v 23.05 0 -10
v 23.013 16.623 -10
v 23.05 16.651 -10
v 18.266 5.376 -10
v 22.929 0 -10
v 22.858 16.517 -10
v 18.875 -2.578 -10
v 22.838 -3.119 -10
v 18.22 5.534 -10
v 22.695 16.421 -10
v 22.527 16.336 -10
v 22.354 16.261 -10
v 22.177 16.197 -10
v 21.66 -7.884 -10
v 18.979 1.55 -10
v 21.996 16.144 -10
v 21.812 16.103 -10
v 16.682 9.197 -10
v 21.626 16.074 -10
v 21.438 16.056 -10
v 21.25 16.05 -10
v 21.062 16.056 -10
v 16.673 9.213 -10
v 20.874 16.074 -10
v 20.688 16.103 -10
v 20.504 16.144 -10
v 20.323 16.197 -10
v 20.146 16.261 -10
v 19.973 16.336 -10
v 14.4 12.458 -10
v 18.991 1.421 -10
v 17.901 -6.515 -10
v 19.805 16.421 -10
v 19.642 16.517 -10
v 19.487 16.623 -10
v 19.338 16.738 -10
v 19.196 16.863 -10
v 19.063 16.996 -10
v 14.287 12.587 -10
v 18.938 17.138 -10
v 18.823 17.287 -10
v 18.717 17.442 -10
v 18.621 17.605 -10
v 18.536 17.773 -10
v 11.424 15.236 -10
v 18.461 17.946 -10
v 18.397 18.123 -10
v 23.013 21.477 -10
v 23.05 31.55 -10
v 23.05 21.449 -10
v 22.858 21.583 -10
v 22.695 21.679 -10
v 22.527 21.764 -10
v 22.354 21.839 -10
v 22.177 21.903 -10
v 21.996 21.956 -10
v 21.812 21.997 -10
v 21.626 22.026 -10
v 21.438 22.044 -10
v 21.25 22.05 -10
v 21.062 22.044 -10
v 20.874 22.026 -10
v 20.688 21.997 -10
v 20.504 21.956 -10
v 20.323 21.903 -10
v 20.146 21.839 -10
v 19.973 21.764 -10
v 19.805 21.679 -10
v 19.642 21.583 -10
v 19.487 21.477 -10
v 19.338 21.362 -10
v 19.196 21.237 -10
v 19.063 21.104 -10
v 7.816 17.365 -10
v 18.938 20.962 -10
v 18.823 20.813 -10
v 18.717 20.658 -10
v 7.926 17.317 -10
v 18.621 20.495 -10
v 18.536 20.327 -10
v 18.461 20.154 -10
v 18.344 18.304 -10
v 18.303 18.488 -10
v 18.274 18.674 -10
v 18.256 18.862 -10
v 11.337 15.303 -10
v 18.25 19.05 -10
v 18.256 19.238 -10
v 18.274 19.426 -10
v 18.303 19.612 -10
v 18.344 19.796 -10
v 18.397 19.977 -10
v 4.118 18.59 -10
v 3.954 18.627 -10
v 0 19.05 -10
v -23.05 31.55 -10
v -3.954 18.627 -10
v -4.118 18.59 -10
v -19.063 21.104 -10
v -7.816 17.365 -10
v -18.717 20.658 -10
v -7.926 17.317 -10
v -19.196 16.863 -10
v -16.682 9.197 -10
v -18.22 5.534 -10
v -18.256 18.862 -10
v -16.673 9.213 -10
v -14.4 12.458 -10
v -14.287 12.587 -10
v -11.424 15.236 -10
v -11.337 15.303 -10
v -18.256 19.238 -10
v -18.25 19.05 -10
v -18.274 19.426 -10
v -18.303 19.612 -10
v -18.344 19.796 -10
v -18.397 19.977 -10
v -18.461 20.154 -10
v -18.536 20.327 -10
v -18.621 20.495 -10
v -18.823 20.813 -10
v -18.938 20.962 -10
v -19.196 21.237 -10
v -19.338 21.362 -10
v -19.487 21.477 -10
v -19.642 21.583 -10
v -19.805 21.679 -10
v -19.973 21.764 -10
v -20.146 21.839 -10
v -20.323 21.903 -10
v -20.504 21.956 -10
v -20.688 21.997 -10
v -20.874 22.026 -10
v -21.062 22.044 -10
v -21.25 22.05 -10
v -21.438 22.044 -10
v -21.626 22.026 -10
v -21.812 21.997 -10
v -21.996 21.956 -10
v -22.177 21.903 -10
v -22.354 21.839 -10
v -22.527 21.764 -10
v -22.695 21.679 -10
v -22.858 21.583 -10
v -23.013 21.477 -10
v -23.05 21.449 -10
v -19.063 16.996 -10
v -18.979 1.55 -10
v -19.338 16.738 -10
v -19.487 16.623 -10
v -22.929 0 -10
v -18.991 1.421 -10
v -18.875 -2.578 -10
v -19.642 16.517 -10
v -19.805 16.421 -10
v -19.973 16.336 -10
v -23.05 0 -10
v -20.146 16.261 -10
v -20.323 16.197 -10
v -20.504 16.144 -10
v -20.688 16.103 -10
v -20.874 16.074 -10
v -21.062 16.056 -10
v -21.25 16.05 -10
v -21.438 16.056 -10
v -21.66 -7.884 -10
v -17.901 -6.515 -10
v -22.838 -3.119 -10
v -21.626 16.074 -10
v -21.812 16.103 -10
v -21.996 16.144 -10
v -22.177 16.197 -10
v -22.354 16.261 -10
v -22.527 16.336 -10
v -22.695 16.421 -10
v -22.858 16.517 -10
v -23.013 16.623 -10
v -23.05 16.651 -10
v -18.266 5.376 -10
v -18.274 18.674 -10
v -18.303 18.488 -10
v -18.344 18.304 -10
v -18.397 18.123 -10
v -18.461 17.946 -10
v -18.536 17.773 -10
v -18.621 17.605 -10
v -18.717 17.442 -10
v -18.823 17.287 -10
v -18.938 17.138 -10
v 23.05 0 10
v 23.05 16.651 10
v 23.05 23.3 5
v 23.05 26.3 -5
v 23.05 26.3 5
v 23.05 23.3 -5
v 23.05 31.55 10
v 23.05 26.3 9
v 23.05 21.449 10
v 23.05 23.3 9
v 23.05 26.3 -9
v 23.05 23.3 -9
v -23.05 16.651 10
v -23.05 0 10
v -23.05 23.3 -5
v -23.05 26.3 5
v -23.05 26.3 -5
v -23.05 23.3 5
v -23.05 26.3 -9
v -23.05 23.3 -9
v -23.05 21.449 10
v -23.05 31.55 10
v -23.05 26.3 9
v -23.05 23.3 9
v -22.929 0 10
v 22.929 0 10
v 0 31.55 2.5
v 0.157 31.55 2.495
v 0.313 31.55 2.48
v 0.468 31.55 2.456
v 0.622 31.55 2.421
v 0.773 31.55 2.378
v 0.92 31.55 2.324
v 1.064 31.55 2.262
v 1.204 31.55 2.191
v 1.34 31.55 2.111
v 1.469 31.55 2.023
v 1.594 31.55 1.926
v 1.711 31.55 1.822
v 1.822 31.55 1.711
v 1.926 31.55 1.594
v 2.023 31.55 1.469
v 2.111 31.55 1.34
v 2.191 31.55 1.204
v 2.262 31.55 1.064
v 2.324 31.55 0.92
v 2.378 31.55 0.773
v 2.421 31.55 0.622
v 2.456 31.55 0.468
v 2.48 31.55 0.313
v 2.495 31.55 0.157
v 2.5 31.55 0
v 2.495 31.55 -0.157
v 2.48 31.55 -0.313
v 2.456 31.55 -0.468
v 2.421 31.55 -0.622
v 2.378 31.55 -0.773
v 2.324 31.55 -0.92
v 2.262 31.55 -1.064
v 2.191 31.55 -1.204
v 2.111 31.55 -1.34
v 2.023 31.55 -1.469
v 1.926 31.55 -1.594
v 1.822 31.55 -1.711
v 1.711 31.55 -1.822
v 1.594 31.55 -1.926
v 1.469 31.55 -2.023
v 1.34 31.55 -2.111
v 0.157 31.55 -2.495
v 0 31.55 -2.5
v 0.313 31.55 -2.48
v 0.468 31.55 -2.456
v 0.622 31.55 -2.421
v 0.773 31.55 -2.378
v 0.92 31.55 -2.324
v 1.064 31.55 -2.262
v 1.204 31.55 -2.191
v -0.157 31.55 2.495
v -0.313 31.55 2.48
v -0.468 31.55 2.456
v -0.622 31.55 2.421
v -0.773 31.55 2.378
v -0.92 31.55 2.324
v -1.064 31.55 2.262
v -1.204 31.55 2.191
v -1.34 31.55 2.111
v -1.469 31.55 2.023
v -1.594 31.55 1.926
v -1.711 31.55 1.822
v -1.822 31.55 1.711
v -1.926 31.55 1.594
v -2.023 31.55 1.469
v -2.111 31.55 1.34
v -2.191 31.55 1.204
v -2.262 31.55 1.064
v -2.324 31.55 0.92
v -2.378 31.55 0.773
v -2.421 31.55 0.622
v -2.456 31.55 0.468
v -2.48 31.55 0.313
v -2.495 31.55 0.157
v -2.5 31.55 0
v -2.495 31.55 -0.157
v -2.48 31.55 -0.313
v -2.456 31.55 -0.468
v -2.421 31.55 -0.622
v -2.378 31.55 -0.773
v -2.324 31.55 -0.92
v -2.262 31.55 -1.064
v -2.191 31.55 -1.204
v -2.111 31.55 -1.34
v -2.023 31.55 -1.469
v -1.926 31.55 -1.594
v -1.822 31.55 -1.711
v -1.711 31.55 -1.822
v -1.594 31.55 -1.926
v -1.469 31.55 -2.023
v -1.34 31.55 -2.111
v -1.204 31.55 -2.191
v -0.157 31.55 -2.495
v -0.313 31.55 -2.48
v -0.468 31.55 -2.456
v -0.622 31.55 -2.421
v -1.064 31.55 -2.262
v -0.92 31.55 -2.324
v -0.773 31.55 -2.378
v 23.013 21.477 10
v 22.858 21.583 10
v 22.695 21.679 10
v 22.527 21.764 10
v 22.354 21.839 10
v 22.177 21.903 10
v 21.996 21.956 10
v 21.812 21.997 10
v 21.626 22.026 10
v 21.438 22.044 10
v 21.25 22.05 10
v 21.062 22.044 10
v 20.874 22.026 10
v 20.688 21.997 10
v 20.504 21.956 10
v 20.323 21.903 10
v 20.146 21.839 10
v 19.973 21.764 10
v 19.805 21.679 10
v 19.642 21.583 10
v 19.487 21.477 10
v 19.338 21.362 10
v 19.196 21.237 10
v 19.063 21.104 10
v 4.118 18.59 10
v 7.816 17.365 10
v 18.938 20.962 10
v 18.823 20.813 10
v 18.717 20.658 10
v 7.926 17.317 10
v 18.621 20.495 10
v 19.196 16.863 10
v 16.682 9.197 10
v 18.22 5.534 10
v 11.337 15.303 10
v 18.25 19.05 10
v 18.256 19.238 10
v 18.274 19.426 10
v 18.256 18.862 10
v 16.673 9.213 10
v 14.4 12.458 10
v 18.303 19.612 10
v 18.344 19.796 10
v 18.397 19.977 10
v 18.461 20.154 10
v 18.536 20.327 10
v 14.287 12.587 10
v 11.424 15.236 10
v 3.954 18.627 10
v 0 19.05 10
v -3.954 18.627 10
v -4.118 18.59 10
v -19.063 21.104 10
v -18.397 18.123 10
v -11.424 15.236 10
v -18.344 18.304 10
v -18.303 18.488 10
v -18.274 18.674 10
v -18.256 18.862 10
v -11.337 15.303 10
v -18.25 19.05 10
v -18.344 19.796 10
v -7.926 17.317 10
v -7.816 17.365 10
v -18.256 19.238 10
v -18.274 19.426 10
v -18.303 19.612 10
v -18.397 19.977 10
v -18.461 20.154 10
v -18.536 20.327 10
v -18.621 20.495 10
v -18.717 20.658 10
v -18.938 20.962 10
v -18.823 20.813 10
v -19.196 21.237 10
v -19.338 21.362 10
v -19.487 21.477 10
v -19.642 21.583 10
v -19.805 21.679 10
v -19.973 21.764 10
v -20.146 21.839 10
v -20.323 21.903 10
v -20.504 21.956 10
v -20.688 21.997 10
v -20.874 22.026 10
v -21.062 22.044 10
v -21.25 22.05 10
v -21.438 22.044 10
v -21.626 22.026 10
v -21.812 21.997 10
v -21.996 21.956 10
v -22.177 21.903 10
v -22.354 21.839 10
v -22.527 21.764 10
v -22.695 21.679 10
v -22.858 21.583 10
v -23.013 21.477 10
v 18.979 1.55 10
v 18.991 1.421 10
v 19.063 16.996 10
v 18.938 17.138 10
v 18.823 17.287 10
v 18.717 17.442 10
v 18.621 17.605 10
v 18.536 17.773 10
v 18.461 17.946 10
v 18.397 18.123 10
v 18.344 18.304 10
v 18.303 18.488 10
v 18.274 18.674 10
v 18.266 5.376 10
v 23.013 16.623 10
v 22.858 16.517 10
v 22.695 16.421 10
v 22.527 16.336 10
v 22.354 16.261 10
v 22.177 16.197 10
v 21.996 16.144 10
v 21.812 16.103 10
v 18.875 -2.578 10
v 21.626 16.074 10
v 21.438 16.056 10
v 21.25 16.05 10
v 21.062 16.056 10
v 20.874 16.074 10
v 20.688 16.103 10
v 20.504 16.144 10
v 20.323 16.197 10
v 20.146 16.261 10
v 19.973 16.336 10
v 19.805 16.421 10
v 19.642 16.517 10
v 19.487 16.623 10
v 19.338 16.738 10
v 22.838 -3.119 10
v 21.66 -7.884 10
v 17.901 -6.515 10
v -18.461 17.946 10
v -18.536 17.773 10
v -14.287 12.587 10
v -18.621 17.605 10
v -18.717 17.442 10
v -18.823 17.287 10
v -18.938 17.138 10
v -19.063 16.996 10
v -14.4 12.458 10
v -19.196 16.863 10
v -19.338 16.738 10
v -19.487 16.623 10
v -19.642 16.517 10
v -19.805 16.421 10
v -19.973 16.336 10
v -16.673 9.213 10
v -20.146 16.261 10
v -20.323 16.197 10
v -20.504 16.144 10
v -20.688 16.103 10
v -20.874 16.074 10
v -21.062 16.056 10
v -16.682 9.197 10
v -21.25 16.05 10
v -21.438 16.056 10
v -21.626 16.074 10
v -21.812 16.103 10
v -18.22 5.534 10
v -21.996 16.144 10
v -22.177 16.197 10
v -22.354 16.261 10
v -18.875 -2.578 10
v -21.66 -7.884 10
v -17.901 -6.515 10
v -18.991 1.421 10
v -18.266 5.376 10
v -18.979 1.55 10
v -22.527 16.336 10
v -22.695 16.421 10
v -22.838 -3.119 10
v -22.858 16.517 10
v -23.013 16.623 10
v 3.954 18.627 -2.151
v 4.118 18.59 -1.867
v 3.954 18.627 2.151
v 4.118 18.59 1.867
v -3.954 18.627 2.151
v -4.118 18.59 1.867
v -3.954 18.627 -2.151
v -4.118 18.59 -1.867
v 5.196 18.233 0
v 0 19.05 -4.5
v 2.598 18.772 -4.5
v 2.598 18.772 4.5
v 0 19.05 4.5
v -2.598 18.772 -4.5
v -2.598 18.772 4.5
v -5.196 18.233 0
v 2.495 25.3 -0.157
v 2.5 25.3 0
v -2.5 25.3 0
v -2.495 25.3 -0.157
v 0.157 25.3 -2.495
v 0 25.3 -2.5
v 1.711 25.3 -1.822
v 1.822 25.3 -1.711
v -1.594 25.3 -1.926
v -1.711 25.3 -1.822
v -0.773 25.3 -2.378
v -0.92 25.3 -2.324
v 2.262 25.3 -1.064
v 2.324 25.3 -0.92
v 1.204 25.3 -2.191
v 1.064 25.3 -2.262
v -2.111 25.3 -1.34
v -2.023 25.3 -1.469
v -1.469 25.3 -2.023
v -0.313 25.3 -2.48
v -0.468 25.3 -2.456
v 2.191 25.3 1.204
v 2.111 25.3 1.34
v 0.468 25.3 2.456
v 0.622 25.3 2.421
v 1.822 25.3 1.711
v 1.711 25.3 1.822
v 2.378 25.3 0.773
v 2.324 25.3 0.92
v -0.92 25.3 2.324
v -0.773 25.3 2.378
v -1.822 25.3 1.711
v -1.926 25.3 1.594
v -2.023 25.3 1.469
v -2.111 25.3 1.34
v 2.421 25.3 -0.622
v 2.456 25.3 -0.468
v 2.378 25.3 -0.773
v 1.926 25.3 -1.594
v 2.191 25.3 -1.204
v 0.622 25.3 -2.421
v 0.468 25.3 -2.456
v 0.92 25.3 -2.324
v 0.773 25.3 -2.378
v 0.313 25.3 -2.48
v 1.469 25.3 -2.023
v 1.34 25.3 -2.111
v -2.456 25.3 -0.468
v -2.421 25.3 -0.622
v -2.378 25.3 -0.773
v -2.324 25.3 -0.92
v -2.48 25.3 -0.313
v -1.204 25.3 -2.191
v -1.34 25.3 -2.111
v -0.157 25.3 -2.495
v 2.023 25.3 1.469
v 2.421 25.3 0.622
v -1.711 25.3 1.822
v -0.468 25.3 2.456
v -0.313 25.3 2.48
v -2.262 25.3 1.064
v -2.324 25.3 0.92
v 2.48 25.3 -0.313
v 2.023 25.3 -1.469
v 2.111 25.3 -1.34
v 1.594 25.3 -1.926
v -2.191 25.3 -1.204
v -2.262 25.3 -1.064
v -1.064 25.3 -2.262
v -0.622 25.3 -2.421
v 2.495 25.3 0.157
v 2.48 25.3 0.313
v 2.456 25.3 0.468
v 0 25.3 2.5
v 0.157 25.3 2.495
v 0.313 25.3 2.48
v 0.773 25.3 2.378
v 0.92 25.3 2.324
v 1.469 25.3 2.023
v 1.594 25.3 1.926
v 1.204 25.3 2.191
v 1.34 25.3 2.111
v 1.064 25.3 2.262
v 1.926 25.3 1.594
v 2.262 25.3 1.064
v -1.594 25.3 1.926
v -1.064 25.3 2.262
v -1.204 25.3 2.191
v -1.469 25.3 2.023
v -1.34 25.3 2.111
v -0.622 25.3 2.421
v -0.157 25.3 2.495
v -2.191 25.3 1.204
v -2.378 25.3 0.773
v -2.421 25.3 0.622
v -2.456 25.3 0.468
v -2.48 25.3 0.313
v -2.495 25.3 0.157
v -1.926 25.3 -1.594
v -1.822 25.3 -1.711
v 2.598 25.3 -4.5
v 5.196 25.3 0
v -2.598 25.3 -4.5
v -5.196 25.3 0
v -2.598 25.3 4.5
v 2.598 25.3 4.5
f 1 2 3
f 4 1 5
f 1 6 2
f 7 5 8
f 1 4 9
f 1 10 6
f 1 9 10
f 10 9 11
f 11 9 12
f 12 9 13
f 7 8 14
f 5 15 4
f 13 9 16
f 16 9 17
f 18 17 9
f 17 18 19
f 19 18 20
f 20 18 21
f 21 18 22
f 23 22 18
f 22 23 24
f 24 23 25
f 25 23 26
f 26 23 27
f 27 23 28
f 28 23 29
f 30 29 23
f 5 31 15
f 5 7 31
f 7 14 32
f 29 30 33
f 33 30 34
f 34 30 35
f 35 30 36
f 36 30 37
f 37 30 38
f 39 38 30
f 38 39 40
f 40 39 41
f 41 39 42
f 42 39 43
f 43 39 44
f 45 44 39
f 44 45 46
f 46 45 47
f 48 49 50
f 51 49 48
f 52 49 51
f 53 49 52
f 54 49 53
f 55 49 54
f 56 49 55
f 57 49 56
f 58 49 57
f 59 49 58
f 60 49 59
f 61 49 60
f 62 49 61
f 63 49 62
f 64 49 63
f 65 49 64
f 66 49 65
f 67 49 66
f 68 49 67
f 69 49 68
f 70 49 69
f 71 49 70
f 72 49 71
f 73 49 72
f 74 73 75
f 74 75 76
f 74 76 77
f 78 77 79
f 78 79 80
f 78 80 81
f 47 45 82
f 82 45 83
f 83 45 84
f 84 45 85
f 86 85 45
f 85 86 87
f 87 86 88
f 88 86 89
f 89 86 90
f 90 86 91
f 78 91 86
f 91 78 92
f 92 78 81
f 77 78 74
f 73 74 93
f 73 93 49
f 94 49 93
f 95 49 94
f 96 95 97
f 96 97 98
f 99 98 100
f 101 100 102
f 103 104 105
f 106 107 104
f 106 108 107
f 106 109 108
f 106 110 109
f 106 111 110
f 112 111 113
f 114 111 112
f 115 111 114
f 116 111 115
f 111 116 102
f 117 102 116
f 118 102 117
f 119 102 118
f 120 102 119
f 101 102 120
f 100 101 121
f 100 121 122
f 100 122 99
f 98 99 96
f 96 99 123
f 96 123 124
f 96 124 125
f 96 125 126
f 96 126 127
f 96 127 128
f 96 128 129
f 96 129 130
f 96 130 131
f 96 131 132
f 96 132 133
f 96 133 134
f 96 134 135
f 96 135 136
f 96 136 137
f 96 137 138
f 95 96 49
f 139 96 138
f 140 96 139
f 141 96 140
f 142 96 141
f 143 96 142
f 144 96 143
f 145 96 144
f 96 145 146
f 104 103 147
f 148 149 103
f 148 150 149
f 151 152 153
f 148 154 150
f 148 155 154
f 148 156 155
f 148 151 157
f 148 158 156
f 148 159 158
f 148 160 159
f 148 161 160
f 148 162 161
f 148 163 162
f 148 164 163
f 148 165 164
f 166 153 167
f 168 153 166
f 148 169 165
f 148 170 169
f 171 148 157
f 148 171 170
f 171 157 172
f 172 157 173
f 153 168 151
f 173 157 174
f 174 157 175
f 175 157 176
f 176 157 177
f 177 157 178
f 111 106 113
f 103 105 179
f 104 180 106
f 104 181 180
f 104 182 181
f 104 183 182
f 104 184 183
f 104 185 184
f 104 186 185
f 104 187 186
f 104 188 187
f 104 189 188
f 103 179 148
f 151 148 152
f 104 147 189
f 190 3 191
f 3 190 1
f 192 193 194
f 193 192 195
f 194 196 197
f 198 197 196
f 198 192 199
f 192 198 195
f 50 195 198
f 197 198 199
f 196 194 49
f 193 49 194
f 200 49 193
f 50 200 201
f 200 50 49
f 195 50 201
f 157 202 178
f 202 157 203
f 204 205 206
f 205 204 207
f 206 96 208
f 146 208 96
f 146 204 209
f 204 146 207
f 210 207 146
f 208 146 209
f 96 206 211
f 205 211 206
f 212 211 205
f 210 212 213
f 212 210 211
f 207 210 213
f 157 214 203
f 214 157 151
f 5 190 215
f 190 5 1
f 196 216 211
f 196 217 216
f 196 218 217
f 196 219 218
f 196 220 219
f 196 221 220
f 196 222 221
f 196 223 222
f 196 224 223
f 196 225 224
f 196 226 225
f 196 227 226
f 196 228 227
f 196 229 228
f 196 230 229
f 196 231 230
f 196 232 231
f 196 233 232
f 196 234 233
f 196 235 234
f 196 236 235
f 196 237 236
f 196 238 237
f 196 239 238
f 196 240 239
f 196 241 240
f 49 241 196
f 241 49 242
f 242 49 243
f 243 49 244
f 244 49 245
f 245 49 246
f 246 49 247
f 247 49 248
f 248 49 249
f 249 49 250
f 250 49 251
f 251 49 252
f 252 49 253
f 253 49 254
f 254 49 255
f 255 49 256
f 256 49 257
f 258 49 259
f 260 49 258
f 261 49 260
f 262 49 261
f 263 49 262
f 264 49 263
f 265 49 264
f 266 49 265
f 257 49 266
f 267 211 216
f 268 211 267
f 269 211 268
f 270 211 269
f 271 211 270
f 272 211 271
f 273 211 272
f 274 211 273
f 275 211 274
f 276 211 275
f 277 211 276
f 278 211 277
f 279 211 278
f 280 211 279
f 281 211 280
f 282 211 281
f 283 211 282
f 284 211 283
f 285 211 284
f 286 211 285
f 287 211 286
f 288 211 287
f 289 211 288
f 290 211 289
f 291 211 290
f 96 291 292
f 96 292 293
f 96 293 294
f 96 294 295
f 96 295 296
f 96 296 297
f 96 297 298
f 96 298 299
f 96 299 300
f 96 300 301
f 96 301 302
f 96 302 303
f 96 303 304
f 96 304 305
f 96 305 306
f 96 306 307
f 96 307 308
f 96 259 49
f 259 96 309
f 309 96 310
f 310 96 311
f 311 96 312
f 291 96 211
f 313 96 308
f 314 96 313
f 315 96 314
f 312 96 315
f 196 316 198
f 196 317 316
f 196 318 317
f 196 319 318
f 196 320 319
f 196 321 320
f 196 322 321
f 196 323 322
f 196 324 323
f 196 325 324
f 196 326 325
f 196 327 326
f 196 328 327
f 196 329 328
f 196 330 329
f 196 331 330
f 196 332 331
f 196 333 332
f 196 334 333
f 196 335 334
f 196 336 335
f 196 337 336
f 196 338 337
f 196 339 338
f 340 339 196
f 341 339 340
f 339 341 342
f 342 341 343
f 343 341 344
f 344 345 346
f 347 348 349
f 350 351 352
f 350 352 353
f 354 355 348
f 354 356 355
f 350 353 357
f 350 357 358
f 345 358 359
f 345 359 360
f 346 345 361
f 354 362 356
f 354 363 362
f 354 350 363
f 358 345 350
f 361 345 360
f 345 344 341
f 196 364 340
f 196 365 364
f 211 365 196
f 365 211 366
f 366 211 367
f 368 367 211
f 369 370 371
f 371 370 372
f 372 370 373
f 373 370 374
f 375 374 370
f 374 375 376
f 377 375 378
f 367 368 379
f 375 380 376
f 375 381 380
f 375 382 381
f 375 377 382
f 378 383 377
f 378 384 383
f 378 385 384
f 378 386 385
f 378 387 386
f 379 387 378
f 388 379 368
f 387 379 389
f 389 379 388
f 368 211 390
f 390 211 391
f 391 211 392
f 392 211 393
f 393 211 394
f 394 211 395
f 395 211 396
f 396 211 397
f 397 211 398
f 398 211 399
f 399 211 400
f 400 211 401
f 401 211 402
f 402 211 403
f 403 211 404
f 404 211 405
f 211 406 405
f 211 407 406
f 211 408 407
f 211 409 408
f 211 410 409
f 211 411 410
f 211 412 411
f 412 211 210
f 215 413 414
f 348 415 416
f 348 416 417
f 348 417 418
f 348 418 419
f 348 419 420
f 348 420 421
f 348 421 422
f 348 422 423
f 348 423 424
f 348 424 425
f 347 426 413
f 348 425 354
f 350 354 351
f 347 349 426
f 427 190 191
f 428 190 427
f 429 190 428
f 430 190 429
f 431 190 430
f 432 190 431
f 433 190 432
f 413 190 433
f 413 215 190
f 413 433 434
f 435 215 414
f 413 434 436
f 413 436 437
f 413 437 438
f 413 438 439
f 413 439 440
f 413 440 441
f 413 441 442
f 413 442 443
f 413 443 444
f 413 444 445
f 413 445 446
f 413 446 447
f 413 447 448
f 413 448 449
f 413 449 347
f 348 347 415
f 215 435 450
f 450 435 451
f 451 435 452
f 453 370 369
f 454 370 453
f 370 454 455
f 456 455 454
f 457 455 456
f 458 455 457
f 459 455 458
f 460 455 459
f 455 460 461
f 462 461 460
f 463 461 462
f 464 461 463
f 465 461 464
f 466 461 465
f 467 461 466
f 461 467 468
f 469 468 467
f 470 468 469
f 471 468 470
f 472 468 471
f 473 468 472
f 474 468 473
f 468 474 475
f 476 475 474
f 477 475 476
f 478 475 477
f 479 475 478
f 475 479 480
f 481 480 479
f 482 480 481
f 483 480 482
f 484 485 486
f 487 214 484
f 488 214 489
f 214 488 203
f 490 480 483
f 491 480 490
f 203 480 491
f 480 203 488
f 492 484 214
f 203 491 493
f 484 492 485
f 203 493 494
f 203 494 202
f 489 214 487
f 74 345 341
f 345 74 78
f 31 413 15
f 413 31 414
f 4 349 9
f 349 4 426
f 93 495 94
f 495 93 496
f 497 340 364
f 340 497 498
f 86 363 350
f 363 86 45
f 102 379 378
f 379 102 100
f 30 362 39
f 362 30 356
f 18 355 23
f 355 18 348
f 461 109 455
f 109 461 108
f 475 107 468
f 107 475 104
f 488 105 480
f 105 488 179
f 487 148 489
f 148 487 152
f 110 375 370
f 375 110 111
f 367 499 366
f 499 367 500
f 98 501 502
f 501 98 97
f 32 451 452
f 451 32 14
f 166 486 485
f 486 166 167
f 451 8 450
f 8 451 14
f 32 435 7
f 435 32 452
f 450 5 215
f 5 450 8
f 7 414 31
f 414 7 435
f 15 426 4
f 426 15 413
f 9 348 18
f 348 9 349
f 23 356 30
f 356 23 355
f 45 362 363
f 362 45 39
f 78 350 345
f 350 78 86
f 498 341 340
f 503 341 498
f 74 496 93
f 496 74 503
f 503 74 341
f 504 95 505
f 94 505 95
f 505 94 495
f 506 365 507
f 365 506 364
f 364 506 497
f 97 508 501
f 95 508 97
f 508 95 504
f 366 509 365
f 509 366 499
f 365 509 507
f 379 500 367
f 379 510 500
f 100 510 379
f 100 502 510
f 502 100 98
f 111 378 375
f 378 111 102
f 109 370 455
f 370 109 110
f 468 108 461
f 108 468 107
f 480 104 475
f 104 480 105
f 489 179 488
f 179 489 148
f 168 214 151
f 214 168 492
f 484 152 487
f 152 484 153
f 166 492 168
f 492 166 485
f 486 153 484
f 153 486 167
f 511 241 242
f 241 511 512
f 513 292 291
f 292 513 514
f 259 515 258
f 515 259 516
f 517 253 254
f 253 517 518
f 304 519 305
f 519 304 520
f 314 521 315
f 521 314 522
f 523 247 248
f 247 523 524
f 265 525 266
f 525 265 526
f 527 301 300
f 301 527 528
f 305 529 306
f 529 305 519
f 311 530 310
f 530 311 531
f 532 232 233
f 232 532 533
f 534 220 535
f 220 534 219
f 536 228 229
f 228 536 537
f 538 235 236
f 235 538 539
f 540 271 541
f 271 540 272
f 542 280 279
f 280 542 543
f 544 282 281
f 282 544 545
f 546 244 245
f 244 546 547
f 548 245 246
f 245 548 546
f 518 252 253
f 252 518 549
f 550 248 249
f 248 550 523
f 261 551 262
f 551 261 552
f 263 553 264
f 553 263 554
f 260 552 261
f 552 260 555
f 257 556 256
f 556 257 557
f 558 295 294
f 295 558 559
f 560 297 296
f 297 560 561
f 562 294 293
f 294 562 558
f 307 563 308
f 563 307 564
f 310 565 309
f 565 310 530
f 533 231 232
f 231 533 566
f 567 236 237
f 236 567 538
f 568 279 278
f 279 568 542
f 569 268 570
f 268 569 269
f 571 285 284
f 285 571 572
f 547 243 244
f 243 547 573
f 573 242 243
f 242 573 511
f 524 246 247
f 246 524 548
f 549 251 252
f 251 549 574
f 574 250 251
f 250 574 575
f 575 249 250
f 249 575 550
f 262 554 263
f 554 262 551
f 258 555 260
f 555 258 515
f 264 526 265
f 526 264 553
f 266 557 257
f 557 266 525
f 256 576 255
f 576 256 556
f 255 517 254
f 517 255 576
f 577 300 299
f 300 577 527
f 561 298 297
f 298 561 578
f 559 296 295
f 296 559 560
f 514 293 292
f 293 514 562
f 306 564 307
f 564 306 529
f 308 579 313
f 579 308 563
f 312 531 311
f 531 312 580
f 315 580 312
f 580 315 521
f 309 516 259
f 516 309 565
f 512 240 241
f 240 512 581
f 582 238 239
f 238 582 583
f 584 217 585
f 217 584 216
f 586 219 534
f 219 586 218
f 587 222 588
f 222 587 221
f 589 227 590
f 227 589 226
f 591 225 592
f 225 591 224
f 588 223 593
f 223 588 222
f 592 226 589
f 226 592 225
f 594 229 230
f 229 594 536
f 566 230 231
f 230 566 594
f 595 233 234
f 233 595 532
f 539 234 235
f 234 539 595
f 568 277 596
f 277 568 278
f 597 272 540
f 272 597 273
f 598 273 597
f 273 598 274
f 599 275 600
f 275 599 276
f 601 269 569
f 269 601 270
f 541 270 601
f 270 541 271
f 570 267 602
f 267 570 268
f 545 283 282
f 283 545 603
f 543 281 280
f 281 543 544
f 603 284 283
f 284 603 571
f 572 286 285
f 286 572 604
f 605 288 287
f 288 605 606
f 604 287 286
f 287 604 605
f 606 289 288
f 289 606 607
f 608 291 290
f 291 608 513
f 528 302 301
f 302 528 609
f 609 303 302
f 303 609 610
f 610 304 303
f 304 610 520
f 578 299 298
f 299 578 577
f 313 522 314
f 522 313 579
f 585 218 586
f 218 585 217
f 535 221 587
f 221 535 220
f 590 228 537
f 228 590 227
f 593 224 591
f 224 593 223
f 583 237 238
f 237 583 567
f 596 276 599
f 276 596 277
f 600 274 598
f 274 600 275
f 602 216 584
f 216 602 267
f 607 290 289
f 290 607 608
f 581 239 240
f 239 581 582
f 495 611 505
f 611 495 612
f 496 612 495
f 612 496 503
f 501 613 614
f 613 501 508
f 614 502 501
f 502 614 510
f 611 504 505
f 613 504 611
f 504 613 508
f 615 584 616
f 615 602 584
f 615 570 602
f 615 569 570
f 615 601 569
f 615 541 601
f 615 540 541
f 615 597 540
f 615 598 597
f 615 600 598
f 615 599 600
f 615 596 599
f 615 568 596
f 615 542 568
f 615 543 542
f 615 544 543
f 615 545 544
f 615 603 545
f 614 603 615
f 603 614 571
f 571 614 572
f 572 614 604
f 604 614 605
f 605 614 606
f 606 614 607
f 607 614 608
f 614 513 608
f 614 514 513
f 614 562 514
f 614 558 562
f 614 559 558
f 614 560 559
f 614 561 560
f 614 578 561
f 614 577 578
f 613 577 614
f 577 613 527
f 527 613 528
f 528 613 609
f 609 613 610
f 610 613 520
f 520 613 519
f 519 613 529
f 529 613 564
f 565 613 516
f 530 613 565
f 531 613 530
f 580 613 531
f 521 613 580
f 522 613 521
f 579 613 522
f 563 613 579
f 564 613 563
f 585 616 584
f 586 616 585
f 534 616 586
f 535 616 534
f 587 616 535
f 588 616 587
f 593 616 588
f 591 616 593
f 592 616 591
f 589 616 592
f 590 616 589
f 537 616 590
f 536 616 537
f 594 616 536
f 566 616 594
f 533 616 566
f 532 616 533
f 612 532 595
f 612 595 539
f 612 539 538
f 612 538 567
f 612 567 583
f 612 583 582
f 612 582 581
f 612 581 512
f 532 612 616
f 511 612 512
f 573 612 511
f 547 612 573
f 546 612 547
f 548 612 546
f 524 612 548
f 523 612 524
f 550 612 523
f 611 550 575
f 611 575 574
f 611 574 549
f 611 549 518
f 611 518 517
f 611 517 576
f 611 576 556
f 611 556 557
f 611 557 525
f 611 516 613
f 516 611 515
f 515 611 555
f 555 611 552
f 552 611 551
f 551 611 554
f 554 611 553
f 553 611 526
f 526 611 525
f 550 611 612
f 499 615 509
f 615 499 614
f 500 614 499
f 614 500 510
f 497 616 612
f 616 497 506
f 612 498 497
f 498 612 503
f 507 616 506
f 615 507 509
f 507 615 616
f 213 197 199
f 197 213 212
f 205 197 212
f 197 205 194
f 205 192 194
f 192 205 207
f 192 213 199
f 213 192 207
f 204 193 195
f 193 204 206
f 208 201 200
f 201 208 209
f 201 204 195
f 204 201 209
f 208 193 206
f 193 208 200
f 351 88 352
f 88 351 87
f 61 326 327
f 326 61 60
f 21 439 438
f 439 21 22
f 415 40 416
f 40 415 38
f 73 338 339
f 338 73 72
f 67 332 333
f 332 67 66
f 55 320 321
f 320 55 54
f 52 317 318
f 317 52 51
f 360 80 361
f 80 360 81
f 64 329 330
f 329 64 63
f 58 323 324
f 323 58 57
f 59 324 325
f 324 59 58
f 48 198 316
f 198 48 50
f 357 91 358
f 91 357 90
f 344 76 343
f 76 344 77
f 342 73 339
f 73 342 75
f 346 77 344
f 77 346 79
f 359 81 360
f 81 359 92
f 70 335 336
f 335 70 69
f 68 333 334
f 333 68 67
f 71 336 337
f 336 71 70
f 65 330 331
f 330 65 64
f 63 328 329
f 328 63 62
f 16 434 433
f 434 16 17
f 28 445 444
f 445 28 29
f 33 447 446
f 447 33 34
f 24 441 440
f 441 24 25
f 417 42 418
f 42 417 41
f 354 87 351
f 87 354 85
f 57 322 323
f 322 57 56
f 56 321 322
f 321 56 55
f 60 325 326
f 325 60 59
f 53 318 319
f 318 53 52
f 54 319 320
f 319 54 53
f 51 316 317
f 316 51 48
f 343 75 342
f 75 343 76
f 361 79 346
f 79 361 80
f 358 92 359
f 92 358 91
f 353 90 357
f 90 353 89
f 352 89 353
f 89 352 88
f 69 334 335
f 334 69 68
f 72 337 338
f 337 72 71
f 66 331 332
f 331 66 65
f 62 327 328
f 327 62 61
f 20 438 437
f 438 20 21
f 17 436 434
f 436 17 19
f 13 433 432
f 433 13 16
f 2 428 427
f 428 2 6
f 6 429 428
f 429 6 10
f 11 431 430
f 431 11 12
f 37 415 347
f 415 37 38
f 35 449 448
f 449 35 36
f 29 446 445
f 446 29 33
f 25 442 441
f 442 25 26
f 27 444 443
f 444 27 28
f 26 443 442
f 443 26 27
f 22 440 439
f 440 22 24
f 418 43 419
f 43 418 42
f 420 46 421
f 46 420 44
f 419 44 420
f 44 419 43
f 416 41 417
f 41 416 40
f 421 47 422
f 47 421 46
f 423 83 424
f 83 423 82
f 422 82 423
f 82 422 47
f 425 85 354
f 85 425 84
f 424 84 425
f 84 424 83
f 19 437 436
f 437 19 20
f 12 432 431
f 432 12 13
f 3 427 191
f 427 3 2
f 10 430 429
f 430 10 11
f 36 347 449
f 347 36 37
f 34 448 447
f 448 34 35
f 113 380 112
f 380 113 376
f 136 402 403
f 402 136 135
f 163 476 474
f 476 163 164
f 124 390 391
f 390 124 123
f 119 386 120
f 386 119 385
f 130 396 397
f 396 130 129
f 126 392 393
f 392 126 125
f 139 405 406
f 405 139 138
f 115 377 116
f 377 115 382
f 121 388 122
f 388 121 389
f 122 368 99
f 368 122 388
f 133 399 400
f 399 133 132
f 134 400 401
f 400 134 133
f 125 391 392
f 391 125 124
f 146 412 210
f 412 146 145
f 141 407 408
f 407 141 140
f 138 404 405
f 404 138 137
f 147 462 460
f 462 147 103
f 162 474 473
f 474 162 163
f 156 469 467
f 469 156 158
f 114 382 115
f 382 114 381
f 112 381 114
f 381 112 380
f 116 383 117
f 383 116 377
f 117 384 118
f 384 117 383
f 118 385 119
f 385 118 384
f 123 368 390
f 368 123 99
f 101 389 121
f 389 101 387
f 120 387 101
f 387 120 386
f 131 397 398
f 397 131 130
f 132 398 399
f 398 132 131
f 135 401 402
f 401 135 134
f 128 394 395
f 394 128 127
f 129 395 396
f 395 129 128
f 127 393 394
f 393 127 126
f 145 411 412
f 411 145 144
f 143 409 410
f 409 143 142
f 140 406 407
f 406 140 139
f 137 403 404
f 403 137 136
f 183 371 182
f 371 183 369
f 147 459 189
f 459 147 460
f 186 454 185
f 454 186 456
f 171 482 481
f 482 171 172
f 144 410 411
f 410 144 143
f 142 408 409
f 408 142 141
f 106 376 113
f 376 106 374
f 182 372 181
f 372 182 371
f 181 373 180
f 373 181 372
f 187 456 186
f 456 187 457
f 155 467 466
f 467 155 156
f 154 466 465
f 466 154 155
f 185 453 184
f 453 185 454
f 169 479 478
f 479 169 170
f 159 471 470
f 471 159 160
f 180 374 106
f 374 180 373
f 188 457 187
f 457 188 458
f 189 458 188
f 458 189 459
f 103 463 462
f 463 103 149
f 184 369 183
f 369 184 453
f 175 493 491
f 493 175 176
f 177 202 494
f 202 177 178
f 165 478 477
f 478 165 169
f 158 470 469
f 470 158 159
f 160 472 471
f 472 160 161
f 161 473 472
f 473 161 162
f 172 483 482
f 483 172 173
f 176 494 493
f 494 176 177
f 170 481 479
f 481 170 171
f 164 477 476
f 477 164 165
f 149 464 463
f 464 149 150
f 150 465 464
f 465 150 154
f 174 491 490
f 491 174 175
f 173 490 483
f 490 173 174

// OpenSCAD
TUBE_SIZE = 25.4*1.5;
CLAMP_THICKNESS = 4;
TOTAL_WIDTH = 20;
ANGLE = 220;
HEIGHT_ABOVE_TUBE = 8.5;
BOLT_HOLE_DIAMETER = 5;
NUT_HOLE_DEPTH = 6.25;
NUT_SIZE_BETWEEN_POINTS= 10.392;
ZIPTIE_WIDTH = 4;
CABLE_RUN_SIZE = 6;

module body(){
    translate([0, 0, -TOTAL_WIDTH/2]){
        union(){

            rotate([0, 0, 90-ANGLE/2]){
                rotate_extrude(angle=ANGLE){
                    translate([TUBE_SIZE/2, 0, 0]){
                        square([CLAMP_THICKNESS, TOTAL_WIDTH]);
                    }
                }
            }

            difference(){
                linear_extrude(height=TOTAL_WIDTH){
                    translate([-(TUBE_SIZE+CLAMP_THICKNESS*2)/2, 0, 0])
                    square([TUBE_SIZE+CLAMP_THICKNESS*2, HEIGHT_ABOVE_TUBE+CLAMP_THICKNESS+TUBE_SIZE/2]);
                }
                
                translate([0, 0, -500]){
                    cylinder(h=1000, d=TUBE_SIZE, $fn=100);
                }
            }
        }
    }
}

module holes(){
    translate([0, -500, 0]){
        rotate([-90, 0, 0]){
            cylinder(h=1000, d=BOLT_HOLE_DIAMETER, $fn=100);
        }
    }
    rotate([-90, 0, 0]){
            cylinder(h=TUBE_SIZE/2+NUT_HOLE_DEPTH, d=NUT_SIZE_BETWEEN_POINTS, $fn=6);
    }
    translate([-500, TUBE_SIZE/2+HEIGHT_ABOVE_TUBE/2, TOTAL_WIDTH/2-ZIPTIE_WIDTH-1]){
        cube([1000, 3, ZIPTIE_WIDTH]);
    }
    translate([-500, TUBE_SIZE/2+HEIGHT_ABOVE_TUBE/2, -TOTAL_WIDTH/2+1]){
        cube([1000, 3, ZIPTIE_WIDTH]);
    }   
    translate([TUBE_SIZE/2+CLAMP_THICKNESS-CABLE_RUN_SIZE/2+CABLE_RUN_SIZE/5, TUBE_SIZE/2, -500]){
        cylinder(d=CABLE_RUN_SIZE, h=1000, $fn=100);
    }
    translate([-(TUBE_SIZE/2+CLAMP_THICKNESS-CABLE_RUN_SIZE/2+CABLE_RUN_SIZE/5), TUBE_SIZE/2, -500]){
        cylinder(d=CABLE_RUN_SIZE, h=1000, $fn=100);
    }
}

difference(){
    body();
    holes();
}
